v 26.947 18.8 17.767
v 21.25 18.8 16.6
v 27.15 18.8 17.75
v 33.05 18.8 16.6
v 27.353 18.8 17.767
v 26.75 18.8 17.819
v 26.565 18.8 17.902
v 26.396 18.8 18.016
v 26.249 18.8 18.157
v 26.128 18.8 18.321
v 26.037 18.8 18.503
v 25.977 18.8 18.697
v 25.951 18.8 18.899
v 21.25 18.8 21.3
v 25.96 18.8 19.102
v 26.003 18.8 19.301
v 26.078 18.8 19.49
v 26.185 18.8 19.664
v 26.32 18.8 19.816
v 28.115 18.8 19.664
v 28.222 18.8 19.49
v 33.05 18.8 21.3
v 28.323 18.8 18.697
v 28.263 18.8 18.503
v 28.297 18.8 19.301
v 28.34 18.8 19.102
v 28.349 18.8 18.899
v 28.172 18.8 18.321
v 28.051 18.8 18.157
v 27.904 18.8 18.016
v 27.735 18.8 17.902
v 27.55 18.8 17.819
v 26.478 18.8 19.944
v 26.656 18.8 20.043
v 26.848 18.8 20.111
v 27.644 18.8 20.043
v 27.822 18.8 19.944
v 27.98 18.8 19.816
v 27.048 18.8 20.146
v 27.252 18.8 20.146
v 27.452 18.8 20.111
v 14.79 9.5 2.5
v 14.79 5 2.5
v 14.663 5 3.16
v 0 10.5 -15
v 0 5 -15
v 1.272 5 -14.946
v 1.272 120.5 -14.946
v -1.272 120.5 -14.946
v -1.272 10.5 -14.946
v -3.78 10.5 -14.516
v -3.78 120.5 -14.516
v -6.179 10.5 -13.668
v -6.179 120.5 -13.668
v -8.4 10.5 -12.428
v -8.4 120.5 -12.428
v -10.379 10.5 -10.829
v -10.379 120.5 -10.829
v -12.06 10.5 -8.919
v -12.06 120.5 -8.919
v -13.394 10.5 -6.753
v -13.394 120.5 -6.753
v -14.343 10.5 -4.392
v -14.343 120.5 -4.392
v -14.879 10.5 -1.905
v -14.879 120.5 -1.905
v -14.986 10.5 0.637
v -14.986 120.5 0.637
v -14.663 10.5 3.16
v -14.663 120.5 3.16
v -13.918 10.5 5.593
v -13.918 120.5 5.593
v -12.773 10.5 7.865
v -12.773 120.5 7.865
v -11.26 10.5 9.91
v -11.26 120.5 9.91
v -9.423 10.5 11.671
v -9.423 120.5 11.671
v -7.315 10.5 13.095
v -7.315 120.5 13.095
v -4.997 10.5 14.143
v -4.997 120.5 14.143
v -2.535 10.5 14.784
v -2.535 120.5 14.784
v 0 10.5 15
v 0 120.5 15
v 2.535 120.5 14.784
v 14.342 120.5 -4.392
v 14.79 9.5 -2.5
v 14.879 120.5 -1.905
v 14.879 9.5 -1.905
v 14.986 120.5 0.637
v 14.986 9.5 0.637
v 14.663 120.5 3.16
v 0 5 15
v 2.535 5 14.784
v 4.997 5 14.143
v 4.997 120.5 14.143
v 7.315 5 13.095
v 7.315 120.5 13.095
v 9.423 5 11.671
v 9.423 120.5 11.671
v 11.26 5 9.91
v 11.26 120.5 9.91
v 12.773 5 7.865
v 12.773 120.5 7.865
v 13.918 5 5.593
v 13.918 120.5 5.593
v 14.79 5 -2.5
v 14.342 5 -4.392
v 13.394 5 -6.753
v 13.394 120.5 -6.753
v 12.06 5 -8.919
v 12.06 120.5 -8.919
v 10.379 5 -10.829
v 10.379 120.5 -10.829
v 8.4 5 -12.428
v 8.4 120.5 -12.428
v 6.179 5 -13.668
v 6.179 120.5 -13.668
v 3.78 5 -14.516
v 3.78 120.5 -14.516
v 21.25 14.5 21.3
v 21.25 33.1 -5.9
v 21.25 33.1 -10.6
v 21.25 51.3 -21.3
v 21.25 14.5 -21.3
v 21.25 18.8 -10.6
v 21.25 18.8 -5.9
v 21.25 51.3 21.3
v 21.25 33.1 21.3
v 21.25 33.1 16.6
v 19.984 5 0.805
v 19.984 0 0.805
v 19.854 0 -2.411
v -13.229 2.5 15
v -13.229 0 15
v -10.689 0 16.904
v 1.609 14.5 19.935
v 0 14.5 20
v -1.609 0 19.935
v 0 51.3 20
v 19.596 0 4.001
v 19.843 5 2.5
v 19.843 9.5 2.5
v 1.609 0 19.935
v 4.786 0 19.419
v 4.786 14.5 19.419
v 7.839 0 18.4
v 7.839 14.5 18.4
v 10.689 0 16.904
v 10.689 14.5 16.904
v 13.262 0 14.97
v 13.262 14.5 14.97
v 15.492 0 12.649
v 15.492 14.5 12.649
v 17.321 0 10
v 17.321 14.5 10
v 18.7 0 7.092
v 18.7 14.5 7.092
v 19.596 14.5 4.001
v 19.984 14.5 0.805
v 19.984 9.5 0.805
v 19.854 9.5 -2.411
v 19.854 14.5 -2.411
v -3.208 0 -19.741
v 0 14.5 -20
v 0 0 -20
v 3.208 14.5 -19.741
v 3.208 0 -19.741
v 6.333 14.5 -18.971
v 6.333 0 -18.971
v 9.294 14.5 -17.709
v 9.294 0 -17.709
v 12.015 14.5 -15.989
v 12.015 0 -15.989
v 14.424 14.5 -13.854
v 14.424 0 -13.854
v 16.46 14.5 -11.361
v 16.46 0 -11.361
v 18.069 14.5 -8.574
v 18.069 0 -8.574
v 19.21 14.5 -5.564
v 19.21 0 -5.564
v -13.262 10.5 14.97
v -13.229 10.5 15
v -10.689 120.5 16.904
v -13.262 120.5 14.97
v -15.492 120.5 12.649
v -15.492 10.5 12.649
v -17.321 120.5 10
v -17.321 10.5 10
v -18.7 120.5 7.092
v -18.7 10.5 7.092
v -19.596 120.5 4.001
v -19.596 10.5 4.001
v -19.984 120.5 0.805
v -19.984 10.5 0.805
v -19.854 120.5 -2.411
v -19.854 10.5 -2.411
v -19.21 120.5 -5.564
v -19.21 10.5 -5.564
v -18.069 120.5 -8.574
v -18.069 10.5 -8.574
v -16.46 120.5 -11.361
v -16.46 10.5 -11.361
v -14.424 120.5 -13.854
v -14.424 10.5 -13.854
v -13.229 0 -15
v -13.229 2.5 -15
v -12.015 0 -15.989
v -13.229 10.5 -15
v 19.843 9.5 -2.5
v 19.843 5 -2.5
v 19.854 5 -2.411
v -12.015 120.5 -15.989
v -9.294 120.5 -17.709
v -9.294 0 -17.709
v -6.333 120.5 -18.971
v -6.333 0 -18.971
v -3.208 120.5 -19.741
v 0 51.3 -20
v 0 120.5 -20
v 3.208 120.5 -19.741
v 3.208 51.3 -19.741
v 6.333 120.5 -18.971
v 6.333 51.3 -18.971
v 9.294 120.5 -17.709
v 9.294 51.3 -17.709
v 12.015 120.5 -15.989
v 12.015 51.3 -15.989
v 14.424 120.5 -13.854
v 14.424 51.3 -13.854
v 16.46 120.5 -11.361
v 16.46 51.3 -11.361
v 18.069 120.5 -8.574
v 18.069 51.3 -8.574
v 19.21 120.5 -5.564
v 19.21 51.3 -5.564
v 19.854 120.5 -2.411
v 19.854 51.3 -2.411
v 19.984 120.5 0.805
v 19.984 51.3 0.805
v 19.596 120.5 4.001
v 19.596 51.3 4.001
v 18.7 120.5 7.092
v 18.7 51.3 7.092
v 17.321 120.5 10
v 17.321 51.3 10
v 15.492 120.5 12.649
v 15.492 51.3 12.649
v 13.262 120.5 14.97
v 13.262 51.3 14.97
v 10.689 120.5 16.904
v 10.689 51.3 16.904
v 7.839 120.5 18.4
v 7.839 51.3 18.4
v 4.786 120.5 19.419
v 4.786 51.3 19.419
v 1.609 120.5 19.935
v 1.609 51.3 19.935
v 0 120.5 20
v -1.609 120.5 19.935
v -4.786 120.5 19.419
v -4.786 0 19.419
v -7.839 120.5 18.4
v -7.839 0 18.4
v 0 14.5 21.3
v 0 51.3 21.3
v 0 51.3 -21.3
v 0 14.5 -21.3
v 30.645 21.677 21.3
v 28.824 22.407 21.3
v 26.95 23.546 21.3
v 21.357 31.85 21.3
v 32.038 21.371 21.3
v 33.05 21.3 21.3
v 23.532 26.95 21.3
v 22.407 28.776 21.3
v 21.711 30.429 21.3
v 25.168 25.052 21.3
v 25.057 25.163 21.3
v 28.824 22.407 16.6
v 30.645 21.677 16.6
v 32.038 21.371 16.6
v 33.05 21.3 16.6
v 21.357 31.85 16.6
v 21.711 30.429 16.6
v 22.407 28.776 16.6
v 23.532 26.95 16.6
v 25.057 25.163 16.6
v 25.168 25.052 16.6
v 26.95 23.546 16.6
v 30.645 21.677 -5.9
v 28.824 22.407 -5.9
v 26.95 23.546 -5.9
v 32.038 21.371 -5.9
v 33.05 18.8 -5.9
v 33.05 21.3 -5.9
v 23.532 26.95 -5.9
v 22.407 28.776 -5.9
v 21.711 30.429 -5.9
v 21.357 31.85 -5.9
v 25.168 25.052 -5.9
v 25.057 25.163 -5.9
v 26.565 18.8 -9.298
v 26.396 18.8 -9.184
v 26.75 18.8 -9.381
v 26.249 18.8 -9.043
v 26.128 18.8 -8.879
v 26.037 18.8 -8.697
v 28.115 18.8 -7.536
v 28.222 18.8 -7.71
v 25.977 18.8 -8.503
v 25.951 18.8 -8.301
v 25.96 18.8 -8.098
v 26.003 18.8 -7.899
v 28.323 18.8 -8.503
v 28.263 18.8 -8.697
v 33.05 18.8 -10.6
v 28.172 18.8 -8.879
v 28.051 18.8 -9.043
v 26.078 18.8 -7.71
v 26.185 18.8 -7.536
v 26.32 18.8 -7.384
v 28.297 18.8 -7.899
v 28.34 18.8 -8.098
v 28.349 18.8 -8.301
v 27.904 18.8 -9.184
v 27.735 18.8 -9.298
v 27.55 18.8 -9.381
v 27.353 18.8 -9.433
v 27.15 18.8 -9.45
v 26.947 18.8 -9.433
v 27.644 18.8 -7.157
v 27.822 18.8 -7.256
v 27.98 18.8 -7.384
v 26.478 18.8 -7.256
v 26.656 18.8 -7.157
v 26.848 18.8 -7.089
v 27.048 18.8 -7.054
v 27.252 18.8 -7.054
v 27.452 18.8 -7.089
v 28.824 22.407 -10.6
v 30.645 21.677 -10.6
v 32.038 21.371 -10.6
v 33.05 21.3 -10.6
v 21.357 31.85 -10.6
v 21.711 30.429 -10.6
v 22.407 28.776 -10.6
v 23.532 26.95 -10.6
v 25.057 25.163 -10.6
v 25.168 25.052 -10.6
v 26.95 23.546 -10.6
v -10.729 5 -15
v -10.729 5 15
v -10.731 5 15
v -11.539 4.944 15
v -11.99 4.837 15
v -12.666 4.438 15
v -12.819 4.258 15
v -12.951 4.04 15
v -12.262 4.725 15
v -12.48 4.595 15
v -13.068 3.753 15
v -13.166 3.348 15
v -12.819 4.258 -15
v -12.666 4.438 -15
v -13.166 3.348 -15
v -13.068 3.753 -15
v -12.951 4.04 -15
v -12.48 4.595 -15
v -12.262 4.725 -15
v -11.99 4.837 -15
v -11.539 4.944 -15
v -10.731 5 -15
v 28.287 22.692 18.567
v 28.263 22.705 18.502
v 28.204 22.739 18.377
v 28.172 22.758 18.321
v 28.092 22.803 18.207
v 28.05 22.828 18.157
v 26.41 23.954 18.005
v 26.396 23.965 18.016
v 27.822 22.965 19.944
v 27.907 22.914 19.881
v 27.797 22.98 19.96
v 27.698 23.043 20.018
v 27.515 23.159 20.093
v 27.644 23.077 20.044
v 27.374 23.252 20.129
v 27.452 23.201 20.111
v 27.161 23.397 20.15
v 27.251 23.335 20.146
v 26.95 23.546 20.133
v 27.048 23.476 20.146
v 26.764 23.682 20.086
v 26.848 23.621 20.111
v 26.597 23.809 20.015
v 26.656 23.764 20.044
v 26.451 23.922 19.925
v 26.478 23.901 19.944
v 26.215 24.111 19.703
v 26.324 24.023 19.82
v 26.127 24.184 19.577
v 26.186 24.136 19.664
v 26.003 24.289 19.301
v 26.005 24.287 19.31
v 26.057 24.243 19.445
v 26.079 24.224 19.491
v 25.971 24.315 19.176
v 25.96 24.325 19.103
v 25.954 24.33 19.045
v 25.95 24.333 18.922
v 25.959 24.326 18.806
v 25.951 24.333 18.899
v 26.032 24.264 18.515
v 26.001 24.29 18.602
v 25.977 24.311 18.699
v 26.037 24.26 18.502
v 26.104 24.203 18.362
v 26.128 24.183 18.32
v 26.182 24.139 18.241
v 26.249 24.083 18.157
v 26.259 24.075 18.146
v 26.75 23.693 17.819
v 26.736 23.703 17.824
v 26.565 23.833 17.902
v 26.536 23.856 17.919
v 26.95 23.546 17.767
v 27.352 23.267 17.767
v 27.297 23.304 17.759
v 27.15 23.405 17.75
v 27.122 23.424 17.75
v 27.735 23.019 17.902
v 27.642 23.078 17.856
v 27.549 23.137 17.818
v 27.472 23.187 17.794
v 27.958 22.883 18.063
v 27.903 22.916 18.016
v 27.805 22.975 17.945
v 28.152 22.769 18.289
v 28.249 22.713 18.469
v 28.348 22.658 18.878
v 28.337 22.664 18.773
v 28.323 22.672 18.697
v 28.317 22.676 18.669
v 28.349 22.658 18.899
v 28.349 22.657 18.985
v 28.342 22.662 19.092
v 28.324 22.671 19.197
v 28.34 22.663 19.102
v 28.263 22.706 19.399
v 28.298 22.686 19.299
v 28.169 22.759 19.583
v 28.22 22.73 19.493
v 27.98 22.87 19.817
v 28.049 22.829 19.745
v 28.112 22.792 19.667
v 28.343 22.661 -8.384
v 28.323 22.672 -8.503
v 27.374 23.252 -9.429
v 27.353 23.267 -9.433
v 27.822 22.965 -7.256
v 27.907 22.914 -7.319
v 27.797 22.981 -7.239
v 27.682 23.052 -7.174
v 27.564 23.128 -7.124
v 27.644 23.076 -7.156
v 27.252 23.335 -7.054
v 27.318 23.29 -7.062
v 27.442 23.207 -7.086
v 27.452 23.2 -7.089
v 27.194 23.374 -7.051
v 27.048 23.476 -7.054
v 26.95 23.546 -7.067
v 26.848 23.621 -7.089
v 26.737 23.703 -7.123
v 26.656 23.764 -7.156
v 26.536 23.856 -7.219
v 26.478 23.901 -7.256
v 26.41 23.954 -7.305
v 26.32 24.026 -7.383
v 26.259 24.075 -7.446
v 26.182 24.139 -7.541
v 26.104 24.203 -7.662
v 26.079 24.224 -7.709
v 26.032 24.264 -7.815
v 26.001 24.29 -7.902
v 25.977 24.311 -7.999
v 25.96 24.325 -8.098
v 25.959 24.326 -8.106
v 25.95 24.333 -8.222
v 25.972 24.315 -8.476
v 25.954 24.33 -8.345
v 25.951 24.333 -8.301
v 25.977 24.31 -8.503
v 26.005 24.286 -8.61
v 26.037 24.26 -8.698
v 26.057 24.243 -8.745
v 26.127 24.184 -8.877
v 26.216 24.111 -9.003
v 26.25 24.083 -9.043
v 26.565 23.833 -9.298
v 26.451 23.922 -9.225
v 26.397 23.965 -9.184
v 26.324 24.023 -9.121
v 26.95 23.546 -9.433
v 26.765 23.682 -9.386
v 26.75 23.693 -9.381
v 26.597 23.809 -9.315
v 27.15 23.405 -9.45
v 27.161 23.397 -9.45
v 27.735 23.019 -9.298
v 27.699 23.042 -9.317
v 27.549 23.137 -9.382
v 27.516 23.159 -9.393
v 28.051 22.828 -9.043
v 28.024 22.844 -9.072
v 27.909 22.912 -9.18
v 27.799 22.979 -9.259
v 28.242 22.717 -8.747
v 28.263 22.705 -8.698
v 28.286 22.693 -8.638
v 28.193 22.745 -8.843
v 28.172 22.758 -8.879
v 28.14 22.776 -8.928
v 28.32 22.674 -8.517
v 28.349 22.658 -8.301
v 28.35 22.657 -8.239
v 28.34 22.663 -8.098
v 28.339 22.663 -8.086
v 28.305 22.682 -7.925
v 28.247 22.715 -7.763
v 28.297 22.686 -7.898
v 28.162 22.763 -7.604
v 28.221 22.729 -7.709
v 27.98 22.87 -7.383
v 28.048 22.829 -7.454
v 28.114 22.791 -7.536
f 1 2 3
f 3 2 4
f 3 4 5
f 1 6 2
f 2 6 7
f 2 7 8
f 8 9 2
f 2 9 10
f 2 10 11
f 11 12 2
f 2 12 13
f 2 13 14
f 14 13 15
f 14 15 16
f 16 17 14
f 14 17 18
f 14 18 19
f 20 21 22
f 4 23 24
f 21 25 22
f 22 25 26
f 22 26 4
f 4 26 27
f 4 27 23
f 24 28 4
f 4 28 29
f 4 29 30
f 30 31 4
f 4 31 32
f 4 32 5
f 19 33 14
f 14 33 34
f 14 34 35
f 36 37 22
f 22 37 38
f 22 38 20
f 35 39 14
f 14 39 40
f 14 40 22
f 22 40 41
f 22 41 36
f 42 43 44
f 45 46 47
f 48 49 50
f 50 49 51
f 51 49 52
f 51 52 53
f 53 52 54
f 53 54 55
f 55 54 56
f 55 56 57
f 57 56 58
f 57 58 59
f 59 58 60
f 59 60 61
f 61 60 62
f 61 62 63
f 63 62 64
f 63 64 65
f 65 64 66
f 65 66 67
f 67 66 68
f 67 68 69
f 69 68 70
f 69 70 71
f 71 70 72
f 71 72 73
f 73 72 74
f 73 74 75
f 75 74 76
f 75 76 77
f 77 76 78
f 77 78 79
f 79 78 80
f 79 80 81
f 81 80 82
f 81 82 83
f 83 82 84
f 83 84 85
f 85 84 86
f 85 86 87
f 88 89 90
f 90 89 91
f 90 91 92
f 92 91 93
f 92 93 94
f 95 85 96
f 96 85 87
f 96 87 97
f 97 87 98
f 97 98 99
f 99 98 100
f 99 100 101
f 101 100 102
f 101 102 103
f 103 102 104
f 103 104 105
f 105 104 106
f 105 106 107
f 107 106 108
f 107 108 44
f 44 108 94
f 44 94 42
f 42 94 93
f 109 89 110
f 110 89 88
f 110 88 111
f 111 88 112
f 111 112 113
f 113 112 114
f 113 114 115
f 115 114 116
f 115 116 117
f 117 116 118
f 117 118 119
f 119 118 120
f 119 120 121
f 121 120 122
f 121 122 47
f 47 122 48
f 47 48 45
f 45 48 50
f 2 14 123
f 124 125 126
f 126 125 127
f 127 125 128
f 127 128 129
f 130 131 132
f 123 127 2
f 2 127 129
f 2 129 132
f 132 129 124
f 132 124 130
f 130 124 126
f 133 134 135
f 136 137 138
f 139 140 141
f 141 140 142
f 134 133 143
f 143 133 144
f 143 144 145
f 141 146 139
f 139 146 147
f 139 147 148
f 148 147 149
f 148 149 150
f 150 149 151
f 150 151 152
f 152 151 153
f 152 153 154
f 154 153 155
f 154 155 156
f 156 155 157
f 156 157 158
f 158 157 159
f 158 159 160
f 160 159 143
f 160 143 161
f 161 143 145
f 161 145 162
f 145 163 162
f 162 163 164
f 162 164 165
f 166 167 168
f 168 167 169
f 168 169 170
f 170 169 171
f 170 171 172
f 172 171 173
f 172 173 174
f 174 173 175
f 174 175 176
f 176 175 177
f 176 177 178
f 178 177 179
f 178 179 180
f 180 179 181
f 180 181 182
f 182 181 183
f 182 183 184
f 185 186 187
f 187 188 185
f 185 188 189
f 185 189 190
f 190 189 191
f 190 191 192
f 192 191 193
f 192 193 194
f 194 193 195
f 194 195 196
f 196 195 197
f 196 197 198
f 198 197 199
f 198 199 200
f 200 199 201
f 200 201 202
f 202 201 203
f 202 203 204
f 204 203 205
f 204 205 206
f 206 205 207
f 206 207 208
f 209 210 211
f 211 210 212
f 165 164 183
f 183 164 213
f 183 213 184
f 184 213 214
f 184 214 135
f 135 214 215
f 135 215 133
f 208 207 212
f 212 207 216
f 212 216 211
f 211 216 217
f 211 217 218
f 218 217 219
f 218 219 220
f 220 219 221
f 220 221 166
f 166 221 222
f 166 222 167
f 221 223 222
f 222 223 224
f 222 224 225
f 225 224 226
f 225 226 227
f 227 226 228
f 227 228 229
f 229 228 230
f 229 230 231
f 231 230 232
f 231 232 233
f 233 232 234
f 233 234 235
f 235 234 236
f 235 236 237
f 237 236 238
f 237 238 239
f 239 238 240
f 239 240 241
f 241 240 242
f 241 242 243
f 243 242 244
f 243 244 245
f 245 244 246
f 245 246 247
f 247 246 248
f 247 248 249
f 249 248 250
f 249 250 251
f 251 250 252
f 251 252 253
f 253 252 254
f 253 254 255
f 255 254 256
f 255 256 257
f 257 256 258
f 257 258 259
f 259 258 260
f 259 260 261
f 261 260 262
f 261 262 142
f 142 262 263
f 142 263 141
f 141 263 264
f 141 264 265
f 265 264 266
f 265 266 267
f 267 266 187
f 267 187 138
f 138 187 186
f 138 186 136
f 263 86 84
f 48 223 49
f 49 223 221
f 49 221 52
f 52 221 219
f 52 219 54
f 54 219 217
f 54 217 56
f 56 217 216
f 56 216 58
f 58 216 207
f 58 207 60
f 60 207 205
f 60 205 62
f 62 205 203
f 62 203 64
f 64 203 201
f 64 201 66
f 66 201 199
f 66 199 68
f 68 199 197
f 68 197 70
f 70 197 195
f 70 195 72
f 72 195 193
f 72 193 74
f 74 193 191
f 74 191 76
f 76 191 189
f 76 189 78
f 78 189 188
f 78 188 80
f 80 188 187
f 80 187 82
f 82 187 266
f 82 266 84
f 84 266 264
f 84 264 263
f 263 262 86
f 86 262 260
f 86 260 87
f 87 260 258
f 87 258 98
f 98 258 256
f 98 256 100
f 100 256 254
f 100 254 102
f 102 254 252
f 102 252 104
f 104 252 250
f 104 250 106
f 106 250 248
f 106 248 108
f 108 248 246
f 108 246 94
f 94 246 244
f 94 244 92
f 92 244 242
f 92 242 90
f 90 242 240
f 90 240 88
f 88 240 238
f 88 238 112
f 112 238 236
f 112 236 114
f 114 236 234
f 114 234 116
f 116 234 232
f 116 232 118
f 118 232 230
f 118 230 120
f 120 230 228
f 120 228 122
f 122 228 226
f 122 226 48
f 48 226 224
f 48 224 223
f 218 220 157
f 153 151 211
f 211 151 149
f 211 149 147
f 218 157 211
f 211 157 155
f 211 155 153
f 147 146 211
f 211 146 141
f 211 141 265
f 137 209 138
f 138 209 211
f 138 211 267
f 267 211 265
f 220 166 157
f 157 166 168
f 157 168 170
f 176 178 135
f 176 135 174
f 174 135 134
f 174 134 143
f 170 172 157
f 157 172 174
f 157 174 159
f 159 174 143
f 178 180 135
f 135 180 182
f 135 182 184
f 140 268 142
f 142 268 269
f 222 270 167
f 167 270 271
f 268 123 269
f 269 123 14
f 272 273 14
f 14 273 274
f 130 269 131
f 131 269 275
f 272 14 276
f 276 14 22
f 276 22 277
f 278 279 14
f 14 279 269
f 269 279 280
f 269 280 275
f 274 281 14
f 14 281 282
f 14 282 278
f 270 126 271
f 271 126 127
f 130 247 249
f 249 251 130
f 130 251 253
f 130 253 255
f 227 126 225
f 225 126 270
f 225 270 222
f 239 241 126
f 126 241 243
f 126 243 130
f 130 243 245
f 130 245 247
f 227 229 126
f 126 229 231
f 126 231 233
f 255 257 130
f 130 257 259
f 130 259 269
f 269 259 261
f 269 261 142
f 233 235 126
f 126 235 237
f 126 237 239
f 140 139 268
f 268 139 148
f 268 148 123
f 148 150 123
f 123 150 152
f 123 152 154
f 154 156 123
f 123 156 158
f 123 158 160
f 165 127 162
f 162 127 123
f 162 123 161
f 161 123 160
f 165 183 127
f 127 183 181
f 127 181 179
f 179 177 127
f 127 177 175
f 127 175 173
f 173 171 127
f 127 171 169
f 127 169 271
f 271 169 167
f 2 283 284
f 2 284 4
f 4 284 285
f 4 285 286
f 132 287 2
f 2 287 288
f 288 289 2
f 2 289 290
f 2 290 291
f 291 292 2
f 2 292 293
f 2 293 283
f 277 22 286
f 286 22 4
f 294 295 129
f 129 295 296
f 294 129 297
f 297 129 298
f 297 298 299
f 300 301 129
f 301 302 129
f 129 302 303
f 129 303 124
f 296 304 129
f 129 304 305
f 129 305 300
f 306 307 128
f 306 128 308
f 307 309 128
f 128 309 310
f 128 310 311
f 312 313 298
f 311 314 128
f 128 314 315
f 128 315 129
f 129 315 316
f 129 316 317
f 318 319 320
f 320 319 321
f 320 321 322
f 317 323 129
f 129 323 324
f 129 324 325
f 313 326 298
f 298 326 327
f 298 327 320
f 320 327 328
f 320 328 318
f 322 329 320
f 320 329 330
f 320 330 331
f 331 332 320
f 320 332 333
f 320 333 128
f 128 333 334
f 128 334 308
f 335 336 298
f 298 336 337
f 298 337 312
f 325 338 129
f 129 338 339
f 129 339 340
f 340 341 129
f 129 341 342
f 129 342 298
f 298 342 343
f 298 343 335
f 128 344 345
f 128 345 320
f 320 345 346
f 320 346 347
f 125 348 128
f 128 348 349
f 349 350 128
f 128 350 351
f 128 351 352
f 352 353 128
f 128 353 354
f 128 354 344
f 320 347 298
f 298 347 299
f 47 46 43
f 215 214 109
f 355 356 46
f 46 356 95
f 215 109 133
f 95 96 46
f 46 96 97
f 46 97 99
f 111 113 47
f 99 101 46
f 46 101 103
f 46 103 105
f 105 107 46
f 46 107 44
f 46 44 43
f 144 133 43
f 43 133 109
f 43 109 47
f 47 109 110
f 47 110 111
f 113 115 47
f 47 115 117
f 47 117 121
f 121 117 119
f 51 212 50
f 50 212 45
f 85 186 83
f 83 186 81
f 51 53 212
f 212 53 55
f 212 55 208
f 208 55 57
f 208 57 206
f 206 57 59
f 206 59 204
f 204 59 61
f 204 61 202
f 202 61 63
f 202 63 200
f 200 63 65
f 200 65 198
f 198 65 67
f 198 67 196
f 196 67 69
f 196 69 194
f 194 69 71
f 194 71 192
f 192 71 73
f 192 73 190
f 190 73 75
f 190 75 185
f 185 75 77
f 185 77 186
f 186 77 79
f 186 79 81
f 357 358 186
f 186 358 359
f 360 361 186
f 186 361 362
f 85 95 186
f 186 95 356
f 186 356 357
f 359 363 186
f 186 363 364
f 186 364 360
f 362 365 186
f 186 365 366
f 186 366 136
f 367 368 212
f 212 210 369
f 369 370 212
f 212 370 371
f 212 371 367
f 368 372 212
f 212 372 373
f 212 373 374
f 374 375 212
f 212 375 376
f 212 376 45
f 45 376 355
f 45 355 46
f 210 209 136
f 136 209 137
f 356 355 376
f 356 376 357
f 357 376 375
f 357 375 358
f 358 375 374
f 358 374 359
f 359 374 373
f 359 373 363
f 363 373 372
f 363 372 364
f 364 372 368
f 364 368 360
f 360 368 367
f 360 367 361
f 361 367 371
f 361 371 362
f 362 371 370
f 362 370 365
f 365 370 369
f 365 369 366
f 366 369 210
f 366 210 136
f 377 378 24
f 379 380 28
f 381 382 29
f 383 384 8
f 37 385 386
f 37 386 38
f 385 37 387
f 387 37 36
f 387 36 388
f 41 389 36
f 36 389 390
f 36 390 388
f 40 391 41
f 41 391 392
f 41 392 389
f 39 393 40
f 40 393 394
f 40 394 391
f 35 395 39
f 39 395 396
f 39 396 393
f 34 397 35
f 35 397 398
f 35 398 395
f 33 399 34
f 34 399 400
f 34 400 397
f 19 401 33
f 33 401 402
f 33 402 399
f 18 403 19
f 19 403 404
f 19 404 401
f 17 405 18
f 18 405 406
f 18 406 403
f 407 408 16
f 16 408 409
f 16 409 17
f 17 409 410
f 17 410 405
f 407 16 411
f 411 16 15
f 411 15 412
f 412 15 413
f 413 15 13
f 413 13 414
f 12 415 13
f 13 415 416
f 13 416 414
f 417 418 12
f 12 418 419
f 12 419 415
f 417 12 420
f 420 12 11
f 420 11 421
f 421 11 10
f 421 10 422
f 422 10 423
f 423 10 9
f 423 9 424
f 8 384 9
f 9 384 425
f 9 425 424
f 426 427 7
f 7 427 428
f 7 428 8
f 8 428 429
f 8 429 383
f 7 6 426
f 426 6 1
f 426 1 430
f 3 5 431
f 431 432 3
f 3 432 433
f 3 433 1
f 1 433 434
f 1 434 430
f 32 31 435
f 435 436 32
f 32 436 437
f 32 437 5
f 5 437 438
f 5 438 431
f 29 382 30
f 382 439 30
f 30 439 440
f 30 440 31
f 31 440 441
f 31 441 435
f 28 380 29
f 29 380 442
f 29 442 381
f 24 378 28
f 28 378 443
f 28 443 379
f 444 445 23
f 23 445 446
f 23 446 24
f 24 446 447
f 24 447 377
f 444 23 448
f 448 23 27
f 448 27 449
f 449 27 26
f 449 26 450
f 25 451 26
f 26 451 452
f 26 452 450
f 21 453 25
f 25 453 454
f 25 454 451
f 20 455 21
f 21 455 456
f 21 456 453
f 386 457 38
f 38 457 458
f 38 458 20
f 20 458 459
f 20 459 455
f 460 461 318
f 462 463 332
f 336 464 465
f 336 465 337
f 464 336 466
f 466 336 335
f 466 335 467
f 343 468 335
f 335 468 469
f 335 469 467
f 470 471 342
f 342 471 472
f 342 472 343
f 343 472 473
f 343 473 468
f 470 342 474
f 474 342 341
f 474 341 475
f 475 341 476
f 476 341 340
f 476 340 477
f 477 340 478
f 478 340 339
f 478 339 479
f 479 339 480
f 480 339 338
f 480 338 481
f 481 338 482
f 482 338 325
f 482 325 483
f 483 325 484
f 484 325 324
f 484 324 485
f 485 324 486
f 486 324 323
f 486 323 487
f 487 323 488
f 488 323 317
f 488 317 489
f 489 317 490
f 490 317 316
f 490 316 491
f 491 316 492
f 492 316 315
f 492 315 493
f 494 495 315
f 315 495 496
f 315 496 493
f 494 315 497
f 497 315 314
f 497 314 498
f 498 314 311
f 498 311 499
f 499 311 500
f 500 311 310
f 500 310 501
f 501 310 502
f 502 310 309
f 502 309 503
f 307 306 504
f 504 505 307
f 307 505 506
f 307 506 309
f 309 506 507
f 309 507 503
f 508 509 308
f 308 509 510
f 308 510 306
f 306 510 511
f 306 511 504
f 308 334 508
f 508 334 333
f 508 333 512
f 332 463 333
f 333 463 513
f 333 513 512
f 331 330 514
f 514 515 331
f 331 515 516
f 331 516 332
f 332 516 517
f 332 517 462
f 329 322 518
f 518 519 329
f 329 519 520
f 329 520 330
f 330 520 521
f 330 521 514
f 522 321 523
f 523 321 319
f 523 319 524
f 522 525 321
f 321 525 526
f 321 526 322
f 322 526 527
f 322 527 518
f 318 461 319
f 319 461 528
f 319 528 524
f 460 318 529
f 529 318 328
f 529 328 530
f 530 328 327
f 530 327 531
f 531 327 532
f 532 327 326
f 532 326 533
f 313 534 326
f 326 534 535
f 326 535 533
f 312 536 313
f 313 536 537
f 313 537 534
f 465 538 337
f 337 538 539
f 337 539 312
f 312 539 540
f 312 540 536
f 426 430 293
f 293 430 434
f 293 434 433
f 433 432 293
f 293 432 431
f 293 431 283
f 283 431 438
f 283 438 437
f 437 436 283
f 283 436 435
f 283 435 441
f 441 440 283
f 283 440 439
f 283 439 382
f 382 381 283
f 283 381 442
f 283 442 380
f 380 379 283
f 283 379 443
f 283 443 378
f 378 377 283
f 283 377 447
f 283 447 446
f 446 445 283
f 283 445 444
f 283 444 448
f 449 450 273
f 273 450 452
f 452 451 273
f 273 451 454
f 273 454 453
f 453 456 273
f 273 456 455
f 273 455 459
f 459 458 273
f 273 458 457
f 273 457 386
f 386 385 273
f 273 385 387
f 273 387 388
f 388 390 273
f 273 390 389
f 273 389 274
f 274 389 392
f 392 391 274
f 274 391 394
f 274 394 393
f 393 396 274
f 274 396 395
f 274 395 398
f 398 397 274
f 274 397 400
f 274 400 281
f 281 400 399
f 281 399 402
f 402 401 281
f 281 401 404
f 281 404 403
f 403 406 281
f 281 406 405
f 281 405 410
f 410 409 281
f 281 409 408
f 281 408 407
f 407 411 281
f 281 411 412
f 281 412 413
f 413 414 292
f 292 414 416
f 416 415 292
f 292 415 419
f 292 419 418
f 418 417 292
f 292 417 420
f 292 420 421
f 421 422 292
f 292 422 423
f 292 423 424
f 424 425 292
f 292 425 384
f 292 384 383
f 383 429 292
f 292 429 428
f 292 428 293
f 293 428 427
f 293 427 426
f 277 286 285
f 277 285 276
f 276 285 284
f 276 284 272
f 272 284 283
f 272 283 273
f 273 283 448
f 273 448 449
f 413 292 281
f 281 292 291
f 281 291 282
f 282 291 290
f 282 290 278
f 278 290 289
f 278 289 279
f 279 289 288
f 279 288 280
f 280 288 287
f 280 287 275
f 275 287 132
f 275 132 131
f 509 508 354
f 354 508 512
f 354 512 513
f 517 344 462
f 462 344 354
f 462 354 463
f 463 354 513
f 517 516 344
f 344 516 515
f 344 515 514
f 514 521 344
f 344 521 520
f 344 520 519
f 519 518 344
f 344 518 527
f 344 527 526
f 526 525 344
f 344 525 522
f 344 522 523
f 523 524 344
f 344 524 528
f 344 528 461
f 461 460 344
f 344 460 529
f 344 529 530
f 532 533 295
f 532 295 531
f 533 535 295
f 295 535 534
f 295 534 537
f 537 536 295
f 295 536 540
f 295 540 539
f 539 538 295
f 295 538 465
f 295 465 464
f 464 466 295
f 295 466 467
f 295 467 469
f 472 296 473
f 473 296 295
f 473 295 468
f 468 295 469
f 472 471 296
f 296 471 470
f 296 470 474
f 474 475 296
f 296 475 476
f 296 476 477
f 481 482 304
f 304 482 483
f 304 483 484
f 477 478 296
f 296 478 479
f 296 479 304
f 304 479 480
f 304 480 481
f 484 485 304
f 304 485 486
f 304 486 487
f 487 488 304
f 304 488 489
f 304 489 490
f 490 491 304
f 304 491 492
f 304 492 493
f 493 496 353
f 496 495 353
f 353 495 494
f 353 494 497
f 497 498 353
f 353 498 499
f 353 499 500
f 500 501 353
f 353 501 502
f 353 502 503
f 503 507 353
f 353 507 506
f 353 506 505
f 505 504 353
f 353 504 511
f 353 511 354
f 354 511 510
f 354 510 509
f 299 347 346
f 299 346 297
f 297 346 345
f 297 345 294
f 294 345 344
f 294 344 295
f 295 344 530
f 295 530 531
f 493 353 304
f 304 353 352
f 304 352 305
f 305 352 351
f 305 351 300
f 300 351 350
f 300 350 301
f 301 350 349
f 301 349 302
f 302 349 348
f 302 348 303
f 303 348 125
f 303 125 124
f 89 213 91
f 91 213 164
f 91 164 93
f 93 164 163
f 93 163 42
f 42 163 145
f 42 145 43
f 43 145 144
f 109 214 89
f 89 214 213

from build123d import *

# Parameters (mm, degrees)
SKETCH1_R                = 20
BOSS_EXTRUDE1_DEPTH      = 120.5
BOSS_EXTRUDE2_START      = 14.5
BOSS_EXTRUDE2_DEPTH      = 36.8
SKETCH7_W                = 4.7
SKETCH7_H                = 2.5
BOSS_EXTRUDE3_DEPTH      = 11.8
SKETCH2_R                = 15
CUT_EXTRUDE2_DEPTH       = 115.5
CUT_EXTRUDE3_REACH       = 135.373
CUT_EXTRUDE3_END_RADIUS  = 15
SKETCH12_W               = 30
SKETCH12_H               = 5.5
CUT_EXTRUDE5_DEPTH       = 5
FILLET3_SIZE             = 2.5
M2_CLEARANCE_HOLE3_D     = 2.4
M2_CLEARANCE_HOLE3_DEPTH = 2.5
M2_CLEARANCE_HOLE3_TIP   = 0.721032743
FILLET4_SIZE             = 11.8
CUT_EXTRUDE6_REACH       = 130.74
CUT_EXTRUDE6_END_RADIUS  = 15


with BuildPart() as part:
    # Sketch1 → Boss-Extrude1 (new body)
    with BuildSketch(Plane(origin=(0, 0, 0), x_dir=(1, 0, 0), z_dir=(0, 1, 0))):
        with Locations(Location((0, 0, 0), (0, 0, 270))):
            Circle(SKETCH1_R)
    extrude(amount=BOSS_EXTRUDE1_DEPTH)

    # Sketch6 → Boss-Extrude2 (add)
    with BuildSketch(Plane(origin=(0, 0, 0), x_dir=(1, 0, 0), z_dir=(0, 1, 0)).offset(BOSS_EXTRUDE2_START)):
        Polygon((21.25, 21.3), (21.25, 0), (21.25, -21.3), (0, -21.3), (0, 0), (0, 21.3), align=None)
    extrude(amount=BOSS_EXTRUDE2_DEPTH)

    # Sketch7 → Boss-Extrude3 (add)
    with BuildSketch(Plane(origin=(21.25, 0, 0), x_dir=(0, 0, -1), z_dir=(1, 0, 0))):
        with Locations((8.25, 20.05)):
            Rectangle(SKETCH7_W, SKETCH7_H)
        with Locations((-18.95, 20.05)):
            Rectangle(SKETCH7_W, SKETCH7_H)
    extrude(amount=BOSS_EXTRUDE3_DEPTH)

    # Sketch2 → Cut-Extrude2 (cut)
    with BuildSketch(Plane(origin=(0, 120.5, 0), x_dir=(1, 0, 0), z_dir=(0, 1, 0))):
        with Locations(Location((0, 0, 0), (0, 0, 270))):
            Circle(SKETCH2_R)
    extrude(amount=-CUT_EXTRUDE2_DEPTH, mode=Mode.SUBTRACT)

    # Cut-Extrude3: up to this cylinder (the profile starts outside it)
    cut_extrude3_end = Plane(origin=(0, 7.75, 0), z_dir=(0, 1, 0)) * Cylinder(CUT_EXTRUDE3_END_RADIUS, 301.746, mode=Mode.PRIVATE)
    # Sketch12 → Cut-Extrude3 (cut, up to the surface)
    with BuildSketch(Plane.ZY.offset(20), mode=Mode.PRIVATE) as cut_extrude3_sk1:
        with Locations((0, 7.75)):
            Rectangle(SKETCH12_W, SKETCH12_H)
    cut_extrude3_tool1 = extrude(cut_extrude3_sk1.sketch, amount=-CUT_EXTRUDE3_REACH, mode=Mode.PRIVATE) - cut_extrude3_end
    add(cut_extrude3_tool1.solids().sort_by_distance((-20, 7.75, 0))[0], mode=Mode.SUBTRACT)

    # Sketch13 → Cut-Extrude5 (cut)
    with BuildSketch(Plane.XZ):
        with BuildLine():
            Line((-13.228756555, 15), (-13.228756555, -15))
            ThreePointArc((-13.228756555, -15), (-20, 0), (-13.228756555, 15))
        make_face()
    extrude(amount=-CUT_EXTRUDE5_DEPTH, mode=Mode.SUBTRACT)

    # Fillet3
    # a fillet whose section is not a circle: 2.5 mm, written as the material it takes off along each edge
    with BuildSketch(Plane(origin=(-13.228756555, 5, 15), x_dir=(0, -1, 0), z_dir=(0, 0, -1))) as fillet3_piece_1:
        with BuildLine():
            Bezier((FILLET3_SIZE, 0), (0, 0), (0, -FILLET3_SIZE), weights=[1, 1.222222222, 1])
            Line((0, -FILLET3_SIZE), (0, 0))
            Line((0, 0), (FILLET3_SIZE, 0))
        make_face()
    extrude(amount=30, mode=Mode.SUBTRACT)

    # M2 Clearance Hole3
    with Locations(Plane(origin=(0, 18.8, 0), x_dir=(-1, 0, 0), z_dir=(0, -1, 0))):
        with Locations((-27.15, 8.25), (-27.15, -18.95)):
            Hole(M2_CLEARANCE_HOLE3_D / 2, depth=M2_CLEARANCE_HOLE3_DEPTH)
            with Locations((0, 0, -(M2_CLEARANCE_HOLE3_DEPTH + M2_CLEARANCE_HOLE3_TIP / 2))):  # 118° drill point
                Cone(0, M2_CLEARANCE_HOLE3_D / 2, M2_CLEARANCE_HOLE3_TIP, mode=Mode.SUBTRACT)

    # Fillet4
    # a fillet whose section is not a circle: 11.8 mm, written as the material it adds along each edge
    with BuildSketch(Plane(origin=(21.25, 21.3, 21.3), x_dir=(1, 0, 0), z_dir=(0, 0, -1))) as fillet4_piece_1_section:
        with BuildLine():
            Bezier((FILLET4_SIZE, 0), (0, 0), (0, -FILLET4_SIZE), weights=[1, 0.538461538, 1])
            Line((0, -FILLET4_SIZE), (0, 0))
            Line((0, 0), (FILLET4_SIZE, 0))
        make_face()
    fillet4_piece_1 = extrude(amount=4.7, mode=Mode.PRIVATE)
    fillet4_piece_1 = fillet4_piece_1 - Plane(origin=(27.15, 21.3, 18.95), x_dir=(1, 0, 0), z_dir=(0, 1, 0)) * Cylinder(1.2, 57, mode=Mode.PRIVATE)
    add(fillet4_piece_1)
    with BuildSketch(Plane(origin=(21.25, 21.3, 21.3), x_dir=(1, 0, 0), z_dir=(0, 0, -1))) as fillet4_piece_2_section:
        with BuildLine():
            Bezier((FILLET4_SIZE, 0), (0, 0), (0, -FILLET4_SIZE), weights=[1, 0.538461538, 1])
            Line((0, -FILLET4_SIZE), (0, 0))
            Line((0, 0), (FILLET4_SIZE, 0))
        make_face()
    fillet4_piece_2 = extrude(amount=34.2, mode=Mode.PRIVATE)
    fillet4_piece_2 = split(fillet4_piece_2, bisect_by=Plane(origin=(21.25, 21.3, -5.9), z_dir=(0, 0, -1)), keep=Keep.TOP, mode=Mode.PRIVATE)
    fillet4_piece_2 = split(fillet4_piece_2, bisect_by=Plane(origin=(21.25, 21.3, -10.6), z_dir=(0, 0, 1)), keep=Keep.TOP, mode=Mode.PRIVATE)
    fillet4_piece_2 = fillet4_piece_2 - Plane(origin=(27.15, 21.3, -8.25), x_dir=(1, 0, 0), z_dir=(0, 1, 0)) * Cylinder(1.2, 116, mode=Mode.PRIVATE)
    add(fillet4_piece_2)
    with BuildSketch(Plane(origin=(21.25, 21.3, -10.6), x_dir=(0, 1, 0), z_dir=(0, 0, 1))) as fillet4_piece_3_section:
        with BuildLine():
            Bezier((FILLET4_SIZE, 0), (0, 0), (0, -FILLET4_SIZE), weights=[1, 0.538461538, 1])
            Line((0, -FILLET4_SIZE), (0, 0))
            Line((0, 0), (FILLET4_SIZE, 0))
        make_face()
    fillet4_piece_3 = extrude(amount=4.7, mode=Mode.PRIVATE)
    fillet4_piece_3 = fillet4_piece_3 - Plane(origin=(27.15, 21.3, -8.25), x_dir=(1, 0, 0), z_dir=(0, 1, 0)) * Cylinder(1.2, 57, mode=Mode.PRIVATE)
    add(fillet4_piece_3)
    with BuildSketch(Plane(origin=(21.25, 21.3, -10.6), x_dir=(0, 1, 0), z_dir=(0, 0, 1))) as fillet4_piece_4_section:
        with BuildLine():
            Bezier((FILLET4_SIZE, 0), (0, 0), (0, -FILLET4_SIZE), weights=[1, 0.538461538, 1])
            Line((0, -FILLET4_SIZE), (0, 0))
            Line((0, 0), (FILLET4_SIZE, 0))
        make_face()
    fillet4_piece_4 = extrude(amount=34.2, mode=Mode.PRIVATE)
    fillet4_piece_4 = split(fillet4_piece_4, bisect_by=Plane(origin=(21.25, 21.3, 21.3), z_dir=(0, 0, -1)), keep=Keep.TOP, mode=Mode.PRIVATE)
    fillet4_piece_4 = split(fillet4_piece_4, bisect_by=Plane(origin=(21.25, 21.3, 16.6), z_dir=(0, 0, 1)), keep=Keep.TOP, mode=Mode.PRIVATE)
    fillet4_piece_4 = fillet4_piece_4 - Plane(origin=(27.15, 21.3, 18.95), x_dir=(1, 0, 0), z_dir=(0, 1, 0)) * Cylinder(1.2, 116, mode=Mode.PRIVATE)
    add(fillet4_piece_4)

    # Cut-Extrude6: up to this cylinder (the profile starts outside it)
    cut_extrude6_end = Plane(origin=(0, 7.25, 0), z_dir=(0, 1, 0)) * Cylinder(CUT_EXTRUDE6_END_RADIUS, 292.48, mode=Mode.PRIVATE)
    # Sketch21 → Cut-Extrude6 (cut, up to the surface)
    with BuildSketch(Plane(origin=(20, 0, 0), x_dir=(0, 0, -1), z_dir=(1, 0, 0)), mode=Mode.PRIVATE) as cut_extrude6_sk1:
        Polygon((0, 5), (-2.5, 5), (-2.5, 9.5), (2.5, 9.5), (2.5, 5), align=None)
    cut_extrude6_tool1 = extrude(cut_extrude6_sk1.sketch, amount=-CUT_EXTRUDE6_REACH, mode=Mode.PRIVATE) - cut_extrude6_end
    add(cut_extrude6_tool1.solids().sort_by_distance((20, 7.25, 0))[0], mode=Mode.SUBTRACT)


solid = part.part
